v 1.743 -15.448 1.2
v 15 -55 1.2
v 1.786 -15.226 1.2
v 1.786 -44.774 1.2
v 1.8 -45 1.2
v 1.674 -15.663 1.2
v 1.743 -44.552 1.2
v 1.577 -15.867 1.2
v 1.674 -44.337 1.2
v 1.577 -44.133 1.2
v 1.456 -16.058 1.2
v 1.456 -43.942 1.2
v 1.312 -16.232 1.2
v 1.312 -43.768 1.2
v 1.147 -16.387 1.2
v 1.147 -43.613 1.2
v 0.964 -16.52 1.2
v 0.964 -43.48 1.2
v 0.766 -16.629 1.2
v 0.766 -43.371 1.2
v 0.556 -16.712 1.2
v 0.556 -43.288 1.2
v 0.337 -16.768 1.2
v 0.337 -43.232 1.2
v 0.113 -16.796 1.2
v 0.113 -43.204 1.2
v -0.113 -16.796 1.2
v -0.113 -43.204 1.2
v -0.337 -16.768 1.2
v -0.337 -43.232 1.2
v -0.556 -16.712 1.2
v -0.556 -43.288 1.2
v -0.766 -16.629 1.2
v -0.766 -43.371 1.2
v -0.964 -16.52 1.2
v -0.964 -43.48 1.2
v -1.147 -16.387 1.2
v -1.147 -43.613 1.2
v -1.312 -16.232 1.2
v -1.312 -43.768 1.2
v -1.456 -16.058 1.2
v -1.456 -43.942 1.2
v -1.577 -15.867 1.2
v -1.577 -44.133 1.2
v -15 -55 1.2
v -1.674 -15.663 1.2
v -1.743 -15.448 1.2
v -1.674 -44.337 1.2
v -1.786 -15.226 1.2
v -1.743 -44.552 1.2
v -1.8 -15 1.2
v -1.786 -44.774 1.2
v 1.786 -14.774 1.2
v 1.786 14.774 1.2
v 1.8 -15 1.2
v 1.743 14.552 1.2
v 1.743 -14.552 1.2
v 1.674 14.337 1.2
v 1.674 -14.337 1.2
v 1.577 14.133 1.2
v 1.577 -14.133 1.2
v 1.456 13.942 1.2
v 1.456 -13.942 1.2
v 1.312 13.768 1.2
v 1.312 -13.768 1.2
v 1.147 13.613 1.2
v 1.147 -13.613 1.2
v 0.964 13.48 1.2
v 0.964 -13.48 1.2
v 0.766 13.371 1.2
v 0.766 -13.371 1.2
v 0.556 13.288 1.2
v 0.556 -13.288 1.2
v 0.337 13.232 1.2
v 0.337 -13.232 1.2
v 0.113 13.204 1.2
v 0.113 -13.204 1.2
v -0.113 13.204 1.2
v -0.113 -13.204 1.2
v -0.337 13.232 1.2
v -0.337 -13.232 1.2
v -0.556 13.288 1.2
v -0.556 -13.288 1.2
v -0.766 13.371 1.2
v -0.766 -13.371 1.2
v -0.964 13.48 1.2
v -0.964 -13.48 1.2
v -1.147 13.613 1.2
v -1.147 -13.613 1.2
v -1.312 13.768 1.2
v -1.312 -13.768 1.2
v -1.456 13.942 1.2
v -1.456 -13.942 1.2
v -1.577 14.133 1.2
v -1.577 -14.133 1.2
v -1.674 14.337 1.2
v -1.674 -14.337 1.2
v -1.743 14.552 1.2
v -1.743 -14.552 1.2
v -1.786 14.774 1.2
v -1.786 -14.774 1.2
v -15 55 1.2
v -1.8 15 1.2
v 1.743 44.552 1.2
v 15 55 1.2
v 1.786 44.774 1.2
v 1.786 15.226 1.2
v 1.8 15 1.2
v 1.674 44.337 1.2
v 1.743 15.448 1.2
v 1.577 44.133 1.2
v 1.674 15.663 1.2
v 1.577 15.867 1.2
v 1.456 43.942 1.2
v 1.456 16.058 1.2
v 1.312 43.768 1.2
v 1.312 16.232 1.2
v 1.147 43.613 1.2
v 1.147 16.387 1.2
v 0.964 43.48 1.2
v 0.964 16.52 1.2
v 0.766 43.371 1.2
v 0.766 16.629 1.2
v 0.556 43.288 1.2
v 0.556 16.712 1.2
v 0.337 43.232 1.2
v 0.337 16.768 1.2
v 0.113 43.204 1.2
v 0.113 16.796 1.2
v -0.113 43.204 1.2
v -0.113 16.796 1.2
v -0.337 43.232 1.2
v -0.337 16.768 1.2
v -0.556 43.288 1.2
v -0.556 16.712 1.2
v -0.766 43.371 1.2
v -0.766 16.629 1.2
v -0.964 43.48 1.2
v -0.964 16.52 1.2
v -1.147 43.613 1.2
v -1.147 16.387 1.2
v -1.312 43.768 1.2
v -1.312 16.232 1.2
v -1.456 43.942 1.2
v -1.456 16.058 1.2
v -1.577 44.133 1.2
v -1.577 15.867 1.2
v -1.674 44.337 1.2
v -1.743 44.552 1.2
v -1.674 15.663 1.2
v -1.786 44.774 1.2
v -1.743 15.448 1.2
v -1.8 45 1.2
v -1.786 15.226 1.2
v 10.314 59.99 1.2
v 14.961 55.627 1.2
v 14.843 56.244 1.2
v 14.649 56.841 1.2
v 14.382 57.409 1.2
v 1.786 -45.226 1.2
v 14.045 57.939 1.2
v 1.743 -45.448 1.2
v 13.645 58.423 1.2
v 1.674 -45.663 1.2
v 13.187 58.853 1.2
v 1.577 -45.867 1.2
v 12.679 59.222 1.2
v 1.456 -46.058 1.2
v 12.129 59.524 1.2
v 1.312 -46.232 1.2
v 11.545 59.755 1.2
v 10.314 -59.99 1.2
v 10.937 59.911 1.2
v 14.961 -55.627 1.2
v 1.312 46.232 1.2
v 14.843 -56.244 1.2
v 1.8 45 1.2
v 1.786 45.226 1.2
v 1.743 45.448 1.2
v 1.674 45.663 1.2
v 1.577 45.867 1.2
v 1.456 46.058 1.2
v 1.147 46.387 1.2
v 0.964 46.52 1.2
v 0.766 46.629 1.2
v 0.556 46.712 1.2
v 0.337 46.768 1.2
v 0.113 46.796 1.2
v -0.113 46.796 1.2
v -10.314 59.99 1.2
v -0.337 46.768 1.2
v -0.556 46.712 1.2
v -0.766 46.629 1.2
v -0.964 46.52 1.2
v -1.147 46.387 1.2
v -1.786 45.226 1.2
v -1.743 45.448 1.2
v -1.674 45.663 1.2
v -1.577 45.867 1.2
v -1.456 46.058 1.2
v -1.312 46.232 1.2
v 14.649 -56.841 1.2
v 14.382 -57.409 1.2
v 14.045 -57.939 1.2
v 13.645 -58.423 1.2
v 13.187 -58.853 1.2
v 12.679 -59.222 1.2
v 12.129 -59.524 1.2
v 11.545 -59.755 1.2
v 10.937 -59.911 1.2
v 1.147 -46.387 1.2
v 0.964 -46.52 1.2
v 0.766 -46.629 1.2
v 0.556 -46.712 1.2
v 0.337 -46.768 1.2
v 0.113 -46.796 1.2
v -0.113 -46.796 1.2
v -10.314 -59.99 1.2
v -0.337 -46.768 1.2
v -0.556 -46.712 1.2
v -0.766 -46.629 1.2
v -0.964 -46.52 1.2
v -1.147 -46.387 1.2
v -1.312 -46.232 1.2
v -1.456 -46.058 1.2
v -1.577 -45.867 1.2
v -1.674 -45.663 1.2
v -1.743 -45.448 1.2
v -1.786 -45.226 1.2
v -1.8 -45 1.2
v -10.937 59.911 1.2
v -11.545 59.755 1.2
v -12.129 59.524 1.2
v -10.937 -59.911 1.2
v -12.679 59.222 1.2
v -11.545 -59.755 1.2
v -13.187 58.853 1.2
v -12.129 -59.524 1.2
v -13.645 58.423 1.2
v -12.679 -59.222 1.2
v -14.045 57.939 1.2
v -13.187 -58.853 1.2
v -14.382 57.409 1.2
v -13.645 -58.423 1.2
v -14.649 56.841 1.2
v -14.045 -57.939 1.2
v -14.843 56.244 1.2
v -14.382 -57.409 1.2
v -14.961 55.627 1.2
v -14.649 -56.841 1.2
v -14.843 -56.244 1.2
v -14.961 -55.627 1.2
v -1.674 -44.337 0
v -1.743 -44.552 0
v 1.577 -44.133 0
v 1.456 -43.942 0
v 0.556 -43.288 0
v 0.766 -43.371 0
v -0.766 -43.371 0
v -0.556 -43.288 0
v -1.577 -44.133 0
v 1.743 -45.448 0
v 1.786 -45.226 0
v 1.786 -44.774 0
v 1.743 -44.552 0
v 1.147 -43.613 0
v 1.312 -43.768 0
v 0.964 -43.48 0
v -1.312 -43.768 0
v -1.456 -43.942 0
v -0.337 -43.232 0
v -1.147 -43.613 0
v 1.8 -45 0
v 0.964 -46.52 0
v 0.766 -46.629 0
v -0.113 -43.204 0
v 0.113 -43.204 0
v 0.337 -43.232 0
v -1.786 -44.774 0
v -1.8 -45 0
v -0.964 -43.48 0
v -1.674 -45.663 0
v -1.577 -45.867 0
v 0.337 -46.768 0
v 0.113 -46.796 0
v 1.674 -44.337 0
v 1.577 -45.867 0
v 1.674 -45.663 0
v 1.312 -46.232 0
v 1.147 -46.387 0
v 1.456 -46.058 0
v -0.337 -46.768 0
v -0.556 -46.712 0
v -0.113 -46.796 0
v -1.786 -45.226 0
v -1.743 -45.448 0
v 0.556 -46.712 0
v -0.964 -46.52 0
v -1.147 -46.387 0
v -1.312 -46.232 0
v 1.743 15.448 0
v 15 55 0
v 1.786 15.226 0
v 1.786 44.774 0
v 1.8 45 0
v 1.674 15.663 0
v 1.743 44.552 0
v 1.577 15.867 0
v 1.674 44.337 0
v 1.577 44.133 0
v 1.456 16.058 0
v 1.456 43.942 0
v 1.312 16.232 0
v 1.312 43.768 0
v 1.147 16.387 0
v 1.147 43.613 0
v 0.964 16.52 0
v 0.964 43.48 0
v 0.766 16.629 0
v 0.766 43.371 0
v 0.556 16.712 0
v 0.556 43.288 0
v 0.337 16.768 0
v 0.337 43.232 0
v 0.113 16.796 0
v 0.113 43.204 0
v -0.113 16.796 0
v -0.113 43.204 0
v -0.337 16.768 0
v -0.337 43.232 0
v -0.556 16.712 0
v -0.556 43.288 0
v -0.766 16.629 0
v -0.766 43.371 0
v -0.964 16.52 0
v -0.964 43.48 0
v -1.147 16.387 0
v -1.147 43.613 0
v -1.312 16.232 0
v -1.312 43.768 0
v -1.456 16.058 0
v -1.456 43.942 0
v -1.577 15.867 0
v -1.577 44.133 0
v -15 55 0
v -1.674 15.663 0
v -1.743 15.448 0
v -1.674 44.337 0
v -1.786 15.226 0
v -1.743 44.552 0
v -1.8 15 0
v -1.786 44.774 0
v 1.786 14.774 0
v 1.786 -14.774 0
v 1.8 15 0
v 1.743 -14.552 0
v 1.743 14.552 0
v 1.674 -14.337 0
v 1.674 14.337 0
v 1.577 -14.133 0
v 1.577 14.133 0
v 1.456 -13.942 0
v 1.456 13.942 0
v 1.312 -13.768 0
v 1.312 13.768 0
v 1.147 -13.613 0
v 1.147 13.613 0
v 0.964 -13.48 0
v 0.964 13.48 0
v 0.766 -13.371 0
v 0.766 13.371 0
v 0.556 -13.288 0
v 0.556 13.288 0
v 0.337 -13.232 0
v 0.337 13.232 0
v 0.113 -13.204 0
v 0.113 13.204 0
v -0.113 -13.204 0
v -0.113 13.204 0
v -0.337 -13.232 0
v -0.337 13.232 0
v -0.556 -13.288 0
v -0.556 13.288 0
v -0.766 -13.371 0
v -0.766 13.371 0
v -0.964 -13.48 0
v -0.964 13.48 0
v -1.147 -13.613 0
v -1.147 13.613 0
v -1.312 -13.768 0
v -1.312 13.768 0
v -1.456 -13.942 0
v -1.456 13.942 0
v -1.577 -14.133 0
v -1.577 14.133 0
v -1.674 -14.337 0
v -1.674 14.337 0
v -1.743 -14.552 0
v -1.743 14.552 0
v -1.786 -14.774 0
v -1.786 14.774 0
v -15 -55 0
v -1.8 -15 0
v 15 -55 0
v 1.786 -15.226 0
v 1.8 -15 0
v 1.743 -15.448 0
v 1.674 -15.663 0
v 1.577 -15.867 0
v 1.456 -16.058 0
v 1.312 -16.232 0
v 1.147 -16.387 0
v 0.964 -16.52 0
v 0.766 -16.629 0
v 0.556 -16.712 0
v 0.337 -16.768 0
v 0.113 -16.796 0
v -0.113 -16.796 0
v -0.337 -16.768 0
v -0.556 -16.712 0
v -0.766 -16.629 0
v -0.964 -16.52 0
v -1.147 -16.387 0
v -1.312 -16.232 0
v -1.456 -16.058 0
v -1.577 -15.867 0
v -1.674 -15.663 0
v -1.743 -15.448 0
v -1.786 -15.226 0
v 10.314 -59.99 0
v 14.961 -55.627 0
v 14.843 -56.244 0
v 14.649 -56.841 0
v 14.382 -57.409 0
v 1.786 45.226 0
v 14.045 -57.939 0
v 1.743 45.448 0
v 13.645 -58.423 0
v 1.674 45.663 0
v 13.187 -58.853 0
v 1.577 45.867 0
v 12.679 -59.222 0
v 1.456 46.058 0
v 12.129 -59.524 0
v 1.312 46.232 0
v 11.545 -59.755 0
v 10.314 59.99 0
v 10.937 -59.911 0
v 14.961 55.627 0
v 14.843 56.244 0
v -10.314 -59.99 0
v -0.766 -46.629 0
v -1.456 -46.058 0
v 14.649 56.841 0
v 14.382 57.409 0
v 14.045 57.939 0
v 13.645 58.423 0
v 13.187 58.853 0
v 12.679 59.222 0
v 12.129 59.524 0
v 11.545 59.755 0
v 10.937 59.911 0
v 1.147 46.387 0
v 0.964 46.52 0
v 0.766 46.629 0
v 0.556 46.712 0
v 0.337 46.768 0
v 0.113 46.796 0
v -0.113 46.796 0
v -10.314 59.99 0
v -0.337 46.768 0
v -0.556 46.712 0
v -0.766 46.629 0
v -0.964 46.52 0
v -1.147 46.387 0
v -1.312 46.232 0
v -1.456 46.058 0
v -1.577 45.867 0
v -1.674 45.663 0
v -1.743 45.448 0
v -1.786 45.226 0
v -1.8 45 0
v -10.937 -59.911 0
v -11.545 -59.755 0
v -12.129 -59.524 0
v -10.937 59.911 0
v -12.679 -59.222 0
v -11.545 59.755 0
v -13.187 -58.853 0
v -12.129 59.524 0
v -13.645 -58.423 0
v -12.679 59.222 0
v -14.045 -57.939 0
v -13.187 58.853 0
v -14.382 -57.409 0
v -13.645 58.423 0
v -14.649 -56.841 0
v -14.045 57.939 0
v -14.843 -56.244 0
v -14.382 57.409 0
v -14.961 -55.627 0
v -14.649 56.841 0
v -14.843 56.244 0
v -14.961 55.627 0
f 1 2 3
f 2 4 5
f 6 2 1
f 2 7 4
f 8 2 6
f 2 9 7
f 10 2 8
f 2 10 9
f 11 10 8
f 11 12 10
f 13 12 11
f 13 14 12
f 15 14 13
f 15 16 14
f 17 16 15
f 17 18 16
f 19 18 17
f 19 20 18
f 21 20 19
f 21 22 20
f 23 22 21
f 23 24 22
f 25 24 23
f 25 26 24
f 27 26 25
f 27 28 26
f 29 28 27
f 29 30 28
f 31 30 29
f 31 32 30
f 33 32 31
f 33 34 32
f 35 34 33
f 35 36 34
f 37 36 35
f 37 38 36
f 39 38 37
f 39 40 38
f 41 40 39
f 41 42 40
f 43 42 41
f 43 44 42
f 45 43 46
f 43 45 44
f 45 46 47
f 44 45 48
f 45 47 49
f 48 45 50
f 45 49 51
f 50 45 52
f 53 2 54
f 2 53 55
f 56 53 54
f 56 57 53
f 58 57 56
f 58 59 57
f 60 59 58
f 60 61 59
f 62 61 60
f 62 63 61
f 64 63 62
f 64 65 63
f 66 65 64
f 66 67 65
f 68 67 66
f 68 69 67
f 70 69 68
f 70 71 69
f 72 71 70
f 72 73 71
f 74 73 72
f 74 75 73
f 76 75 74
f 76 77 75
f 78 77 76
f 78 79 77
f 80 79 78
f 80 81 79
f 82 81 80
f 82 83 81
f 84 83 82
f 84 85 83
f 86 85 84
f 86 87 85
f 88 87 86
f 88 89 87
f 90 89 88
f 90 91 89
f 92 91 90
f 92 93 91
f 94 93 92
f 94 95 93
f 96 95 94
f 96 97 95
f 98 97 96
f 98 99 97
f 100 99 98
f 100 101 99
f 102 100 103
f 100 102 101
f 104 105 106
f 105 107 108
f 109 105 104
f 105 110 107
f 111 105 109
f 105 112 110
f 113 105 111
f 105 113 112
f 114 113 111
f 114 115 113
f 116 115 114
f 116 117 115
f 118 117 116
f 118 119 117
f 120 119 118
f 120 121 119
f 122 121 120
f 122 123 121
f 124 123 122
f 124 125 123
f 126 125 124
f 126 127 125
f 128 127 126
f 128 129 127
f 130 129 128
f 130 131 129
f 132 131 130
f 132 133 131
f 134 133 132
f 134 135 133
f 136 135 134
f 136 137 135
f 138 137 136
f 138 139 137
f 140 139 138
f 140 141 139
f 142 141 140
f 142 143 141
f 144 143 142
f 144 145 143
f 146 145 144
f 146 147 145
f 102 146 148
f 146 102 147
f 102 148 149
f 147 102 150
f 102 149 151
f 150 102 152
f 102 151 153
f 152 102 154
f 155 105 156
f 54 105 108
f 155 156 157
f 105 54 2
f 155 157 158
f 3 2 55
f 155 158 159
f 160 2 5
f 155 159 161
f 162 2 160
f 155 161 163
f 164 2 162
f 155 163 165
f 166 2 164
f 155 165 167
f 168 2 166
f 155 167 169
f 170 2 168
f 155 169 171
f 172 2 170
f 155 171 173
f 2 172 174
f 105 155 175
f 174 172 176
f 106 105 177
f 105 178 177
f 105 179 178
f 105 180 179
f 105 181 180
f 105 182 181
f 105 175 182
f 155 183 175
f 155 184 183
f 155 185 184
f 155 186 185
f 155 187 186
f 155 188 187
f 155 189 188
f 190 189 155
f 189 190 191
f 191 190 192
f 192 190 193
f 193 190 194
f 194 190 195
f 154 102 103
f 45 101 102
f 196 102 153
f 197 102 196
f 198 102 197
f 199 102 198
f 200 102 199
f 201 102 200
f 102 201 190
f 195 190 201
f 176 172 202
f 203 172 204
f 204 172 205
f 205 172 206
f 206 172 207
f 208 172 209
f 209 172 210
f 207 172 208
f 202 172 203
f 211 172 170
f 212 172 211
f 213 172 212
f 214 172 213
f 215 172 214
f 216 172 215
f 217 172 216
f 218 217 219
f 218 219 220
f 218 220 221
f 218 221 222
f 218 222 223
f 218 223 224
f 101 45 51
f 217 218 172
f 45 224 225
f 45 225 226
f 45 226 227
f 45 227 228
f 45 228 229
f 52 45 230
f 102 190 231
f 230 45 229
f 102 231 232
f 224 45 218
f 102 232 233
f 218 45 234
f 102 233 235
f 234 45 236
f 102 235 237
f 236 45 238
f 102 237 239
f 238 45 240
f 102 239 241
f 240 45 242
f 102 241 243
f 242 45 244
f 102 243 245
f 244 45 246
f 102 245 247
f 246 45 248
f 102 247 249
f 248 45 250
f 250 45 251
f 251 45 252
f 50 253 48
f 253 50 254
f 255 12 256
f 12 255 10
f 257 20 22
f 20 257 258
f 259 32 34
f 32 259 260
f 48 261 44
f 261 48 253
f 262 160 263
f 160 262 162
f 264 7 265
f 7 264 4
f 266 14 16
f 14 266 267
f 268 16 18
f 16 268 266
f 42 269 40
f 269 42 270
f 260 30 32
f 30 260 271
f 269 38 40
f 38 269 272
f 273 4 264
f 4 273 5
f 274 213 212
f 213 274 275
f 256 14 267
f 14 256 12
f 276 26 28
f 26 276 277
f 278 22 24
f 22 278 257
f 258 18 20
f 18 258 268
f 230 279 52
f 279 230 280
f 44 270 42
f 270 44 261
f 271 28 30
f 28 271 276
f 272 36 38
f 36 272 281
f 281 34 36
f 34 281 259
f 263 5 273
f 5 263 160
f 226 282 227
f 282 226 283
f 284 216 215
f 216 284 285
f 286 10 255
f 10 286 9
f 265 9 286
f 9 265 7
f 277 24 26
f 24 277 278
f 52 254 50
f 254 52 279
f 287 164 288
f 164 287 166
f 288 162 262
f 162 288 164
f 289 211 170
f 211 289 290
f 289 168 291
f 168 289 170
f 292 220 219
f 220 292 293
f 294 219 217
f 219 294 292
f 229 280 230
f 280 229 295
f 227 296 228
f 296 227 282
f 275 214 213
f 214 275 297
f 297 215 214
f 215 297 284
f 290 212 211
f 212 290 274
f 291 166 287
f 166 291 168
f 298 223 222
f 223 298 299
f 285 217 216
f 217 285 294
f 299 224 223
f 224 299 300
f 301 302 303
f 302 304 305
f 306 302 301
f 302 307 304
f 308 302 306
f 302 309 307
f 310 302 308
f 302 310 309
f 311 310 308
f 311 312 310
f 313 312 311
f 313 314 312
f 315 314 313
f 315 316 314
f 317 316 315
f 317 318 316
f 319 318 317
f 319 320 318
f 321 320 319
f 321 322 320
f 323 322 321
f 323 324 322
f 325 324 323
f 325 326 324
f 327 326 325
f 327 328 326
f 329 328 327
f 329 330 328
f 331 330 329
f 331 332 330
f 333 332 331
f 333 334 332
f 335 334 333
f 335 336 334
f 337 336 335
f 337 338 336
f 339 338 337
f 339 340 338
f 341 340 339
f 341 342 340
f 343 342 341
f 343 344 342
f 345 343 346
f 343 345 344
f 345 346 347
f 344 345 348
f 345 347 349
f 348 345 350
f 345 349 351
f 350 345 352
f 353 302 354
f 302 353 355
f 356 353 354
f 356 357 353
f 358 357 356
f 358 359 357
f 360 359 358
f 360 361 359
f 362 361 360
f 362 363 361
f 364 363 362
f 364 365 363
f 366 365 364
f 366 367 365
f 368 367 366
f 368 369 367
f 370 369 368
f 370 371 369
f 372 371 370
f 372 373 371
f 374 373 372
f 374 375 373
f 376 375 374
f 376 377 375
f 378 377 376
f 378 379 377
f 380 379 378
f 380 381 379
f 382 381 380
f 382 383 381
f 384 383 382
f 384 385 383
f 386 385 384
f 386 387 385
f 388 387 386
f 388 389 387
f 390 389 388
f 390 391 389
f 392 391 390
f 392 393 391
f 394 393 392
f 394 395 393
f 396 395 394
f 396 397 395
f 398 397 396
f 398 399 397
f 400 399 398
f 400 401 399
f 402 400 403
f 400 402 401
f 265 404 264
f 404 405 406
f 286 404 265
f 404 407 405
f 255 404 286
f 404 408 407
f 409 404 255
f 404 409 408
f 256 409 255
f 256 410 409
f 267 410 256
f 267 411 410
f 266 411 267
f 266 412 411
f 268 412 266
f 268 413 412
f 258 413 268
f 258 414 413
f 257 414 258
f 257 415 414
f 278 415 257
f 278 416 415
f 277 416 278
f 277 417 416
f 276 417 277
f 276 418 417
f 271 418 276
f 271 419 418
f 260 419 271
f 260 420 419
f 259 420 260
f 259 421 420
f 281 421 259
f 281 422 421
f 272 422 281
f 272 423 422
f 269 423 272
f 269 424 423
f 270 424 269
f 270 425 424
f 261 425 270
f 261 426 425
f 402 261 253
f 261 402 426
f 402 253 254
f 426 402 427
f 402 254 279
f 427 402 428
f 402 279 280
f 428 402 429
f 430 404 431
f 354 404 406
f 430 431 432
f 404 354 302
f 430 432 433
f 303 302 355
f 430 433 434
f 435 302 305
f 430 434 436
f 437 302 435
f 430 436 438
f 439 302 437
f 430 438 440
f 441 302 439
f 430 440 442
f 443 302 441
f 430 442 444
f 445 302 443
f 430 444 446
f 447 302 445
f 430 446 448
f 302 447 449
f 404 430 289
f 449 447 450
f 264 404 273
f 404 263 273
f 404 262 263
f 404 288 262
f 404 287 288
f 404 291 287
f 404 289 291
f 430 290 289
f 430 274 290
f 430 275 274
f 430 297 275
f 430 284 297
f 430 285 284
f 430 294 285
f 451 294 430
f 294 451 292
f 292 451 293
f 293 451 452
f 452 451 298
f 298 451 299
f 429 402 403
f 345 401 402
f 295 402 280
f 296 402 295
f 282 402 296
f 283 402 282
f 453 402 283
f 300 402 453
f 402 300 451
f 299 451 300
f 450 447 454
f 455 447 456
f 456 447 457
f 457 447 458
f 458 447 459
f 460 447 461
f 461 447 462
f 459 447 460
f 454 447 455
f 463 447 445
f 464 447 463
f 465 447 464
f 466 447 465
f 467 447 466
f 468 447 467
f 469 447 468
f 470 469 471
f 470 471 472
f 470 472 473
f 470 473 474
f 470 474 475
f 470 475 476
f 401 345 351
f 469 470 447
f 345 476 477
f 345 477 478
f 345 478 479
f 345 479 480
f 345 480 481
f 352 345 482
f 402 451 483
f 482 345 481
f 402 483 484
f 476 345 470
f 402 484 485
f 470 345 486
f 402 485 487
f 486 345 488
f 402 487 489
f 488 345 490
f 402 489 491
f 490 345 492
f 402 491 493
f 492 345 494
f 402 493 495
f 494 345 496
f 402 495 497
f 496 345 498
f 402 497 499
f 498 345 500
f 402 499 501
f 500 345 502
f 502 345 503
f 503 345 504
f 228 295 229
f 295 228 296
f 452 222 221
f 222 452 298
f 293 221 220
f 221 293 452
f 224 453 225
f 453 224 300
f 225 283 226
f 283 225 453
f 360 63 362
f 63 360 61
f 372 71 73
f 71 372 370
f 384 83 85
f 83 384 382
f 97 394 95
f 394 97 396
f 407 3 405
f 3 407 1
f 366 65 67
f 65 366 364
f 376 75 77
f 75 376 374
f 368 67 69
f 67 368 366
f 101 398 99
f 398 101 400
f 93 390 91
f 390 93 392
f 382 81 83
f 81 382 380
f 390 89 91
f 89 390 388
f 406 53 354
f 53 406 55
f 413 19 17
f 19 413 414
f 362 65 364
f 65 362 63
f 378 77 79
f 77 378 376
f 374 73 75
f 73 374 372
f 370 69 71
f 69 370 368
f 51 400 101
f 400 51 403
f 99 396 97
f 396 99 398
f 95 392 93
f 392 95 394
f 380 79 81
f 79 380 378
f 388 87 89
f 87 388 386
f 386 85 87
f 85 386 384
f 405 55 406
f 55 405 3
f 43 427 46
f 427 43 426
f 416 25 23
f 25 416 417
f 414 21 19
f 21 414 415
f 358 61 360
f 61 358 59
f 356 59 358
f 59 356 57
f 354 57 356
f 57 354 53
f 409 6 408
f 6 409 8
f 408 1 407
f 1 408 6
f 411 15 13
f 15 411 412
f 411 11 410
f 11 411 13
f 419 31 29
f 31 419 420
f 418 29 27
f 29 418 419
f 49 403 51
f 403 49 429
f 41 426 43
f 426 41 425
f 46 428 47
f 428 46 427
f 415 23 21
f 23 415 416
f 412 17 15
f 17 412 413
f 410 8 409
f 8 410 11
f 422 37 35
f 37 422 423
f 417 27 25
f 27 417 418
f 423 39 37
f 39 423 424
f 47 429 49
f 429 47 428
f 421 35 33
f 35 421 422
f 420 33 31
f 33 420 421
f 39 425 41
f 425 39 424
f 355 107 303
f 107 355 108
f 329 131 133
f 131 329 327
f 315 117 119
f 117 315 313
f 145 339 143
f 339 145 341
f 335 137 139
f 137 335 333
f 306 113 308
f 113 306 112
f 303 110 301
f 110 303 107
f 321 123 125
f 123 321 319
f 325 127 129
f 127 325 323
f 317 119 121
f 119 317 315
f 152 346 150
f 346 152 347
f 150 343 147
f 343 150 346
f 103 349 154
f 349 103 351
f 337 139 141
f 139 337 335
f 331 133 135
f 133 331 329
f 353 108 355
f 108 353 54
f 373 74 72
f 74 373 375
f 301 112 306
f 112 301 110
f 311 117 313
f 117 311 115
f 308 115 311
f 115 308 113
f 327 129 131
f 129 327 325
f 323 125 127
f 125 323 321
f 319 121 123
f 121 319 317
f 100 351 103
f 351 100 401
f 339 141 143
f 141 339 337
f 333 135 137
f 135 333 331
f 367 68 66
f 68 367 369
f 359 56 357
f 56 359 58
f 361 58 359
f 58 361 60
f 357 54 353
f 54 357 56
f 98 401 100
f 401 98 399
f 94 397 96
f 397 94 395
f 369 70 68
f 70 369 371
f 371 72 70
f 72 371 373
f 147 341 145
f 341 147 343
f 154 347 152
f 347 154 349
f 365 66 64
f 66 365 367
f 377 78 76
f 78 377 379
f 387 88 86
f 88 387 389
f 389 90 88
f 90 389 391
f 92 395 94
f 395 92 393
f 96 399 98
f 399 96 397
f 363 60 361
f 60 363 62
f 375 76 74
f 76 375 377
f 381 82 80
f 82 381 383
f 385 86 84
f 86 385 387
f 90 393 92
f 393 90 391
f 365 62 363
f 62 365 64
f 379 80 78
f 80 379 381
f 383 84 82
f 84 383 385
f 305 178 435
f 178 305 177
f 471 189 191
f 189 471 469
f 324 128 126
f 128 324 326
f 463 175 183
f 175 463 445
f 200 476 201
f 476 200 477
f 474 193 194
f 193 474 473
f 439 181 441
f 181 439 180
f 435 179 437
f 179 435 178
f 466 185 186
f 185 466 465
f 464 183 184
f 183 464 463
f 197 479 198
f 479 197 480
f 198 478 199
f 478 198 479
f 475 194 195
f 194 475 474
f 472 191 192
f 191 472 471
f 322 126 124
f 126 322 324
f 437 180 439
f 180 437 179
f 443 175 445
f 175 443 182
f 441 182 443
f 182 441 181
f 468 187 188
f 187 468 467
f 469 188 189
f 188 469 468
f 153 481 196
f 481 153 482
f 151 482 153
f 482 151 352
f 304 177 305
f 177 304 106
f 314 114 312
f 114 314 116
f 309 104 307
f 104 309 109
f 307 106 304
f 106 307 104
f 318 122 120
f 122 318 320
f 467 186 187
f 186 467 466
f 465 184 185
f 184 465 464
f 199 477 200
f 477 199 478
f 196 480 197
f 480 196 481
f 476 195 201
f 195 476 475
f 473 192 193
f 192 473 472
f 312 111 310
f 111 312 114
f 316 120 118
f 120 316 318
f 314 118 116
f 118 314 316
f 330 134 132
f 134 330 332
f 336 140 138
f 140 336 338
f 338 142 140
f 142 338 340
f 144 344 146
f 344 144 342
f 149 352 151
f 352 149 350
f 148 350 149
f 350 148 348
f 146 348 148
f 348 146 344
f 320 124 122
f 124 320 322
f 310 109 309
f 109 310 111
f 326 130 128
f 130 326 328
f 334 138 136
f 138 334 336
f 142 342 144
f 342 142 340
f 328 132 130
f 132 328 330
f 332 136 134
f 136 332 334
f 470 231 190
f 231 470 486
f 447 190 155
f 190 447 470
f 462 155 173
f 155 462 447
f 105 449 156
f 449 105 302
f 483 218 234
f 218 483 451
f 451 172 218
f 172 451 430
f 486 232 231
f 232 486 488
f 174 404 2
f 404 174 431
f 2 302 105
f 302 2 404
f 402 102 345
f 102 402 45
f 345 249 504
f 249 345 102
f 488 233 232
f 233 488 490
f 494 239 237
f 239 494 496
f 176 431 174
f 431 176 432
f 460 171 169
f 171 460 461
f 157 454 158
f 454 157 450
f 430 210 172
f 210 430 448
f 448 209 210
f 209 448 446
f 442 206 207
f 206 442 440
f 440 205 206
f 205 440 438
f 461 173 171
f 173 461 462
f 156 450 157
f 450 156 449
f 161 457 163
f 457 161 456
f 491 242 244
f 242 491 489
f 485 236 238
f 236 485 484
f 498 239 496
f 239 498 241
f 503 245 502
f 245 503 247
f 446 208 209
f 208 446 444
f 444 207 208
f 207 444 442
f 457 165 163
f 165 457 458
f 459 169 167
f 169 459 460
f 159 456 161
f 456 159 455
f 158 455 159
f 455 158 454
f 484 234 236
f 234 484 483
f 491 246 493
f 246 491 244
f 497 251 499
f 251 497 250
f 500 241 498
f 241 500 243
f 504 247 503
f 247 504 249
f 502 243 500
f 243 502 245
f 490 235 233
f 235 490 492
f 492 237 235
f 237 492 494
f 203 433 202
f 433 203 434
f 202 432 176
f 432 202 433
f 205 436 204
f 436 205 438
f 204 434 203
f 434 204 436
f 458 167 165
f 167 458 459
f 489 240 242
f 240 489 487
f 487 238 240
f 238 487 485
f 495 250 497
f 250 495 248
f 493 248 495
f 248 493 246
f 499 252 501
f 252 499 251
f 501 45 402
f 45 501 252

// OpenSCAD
$fn = 50;


difference() {
	union() {
		hull() {
			translate(v = [-10.0000000000, 55.0000000000, 0]) {
				cylinder(h = 18, r = 5);
			}
			translate(v = [10.0000000000, 55.0000000000, 0]) {
				cylinder(h = 18, r = 5);
			}
			translate(v = [-10.0000000000, -55.0000000000, 0]) {
				cylinder(h = 18, r = 5);
			}
			translate(v = [10.0000000000, -55.0000000000, 0]) {
				cylinder(h = 18, r = 5);
			}
		}
	}
	union() {
		translate(v = [0, 0, 1.2000000000]) {
			hull() {
				translate(v = [-10.0000000000, 55.0000000000, 0]) {
					cylinder(h = 16.8000000000, r = 3.8000000000);
				}
				translate(v = [10.0000000000, 55.0000000000, 0]) {
					cylinder(h = 16.8000000000, r = 3.8000000000);
				}
				translate(v = [-10.0000000000, -55.0000000000, 0]) {
					cylinder(h = 16.8000000000, r = 3.8000000000);
				}
				translate(v = [10.0000000000, -55.0000000000, 0]) {
					cylinder(h = 16.8000000000, r = 3.8000000000);
				}
			}
		}
		#translate(v = [0.0000000000, -45.0000000000, 0]) {
			cylinder(h = 1.2000000000, r = 1.8000000000);
		}
		#translate(v = [0.0000000000, -15.0000000000, 0]) {
			cylinder(h = 1.2000000000, r = 1.8000000000);
		}
		#translate(v = [0.0000000000, 15.0000000000, 0]) {
			cylinder(h = 1.2000000000, r = 1.8000000000);
		}
		#translate(v = [0.0000000000, 45.0000000000, 0]) {
			cylinder(h = 1.2000000000, r = 1.8000000000);
		}
		translate(v = [-250.0000000000, -250.0000000000, 1.2000000000]) {
			cube(size = [500, 500, 500]);
		}
		translate(v = [-250.0000000000, -250.0000000000, 1.2000000000]) {
			cube(size = [500, 500, 500]);
		}
		translate(v = [-250.0000000000, -250.0000000000, 1.2000000000]) {
			cube(size = [500, 500, 500]);
		}
	}
}
